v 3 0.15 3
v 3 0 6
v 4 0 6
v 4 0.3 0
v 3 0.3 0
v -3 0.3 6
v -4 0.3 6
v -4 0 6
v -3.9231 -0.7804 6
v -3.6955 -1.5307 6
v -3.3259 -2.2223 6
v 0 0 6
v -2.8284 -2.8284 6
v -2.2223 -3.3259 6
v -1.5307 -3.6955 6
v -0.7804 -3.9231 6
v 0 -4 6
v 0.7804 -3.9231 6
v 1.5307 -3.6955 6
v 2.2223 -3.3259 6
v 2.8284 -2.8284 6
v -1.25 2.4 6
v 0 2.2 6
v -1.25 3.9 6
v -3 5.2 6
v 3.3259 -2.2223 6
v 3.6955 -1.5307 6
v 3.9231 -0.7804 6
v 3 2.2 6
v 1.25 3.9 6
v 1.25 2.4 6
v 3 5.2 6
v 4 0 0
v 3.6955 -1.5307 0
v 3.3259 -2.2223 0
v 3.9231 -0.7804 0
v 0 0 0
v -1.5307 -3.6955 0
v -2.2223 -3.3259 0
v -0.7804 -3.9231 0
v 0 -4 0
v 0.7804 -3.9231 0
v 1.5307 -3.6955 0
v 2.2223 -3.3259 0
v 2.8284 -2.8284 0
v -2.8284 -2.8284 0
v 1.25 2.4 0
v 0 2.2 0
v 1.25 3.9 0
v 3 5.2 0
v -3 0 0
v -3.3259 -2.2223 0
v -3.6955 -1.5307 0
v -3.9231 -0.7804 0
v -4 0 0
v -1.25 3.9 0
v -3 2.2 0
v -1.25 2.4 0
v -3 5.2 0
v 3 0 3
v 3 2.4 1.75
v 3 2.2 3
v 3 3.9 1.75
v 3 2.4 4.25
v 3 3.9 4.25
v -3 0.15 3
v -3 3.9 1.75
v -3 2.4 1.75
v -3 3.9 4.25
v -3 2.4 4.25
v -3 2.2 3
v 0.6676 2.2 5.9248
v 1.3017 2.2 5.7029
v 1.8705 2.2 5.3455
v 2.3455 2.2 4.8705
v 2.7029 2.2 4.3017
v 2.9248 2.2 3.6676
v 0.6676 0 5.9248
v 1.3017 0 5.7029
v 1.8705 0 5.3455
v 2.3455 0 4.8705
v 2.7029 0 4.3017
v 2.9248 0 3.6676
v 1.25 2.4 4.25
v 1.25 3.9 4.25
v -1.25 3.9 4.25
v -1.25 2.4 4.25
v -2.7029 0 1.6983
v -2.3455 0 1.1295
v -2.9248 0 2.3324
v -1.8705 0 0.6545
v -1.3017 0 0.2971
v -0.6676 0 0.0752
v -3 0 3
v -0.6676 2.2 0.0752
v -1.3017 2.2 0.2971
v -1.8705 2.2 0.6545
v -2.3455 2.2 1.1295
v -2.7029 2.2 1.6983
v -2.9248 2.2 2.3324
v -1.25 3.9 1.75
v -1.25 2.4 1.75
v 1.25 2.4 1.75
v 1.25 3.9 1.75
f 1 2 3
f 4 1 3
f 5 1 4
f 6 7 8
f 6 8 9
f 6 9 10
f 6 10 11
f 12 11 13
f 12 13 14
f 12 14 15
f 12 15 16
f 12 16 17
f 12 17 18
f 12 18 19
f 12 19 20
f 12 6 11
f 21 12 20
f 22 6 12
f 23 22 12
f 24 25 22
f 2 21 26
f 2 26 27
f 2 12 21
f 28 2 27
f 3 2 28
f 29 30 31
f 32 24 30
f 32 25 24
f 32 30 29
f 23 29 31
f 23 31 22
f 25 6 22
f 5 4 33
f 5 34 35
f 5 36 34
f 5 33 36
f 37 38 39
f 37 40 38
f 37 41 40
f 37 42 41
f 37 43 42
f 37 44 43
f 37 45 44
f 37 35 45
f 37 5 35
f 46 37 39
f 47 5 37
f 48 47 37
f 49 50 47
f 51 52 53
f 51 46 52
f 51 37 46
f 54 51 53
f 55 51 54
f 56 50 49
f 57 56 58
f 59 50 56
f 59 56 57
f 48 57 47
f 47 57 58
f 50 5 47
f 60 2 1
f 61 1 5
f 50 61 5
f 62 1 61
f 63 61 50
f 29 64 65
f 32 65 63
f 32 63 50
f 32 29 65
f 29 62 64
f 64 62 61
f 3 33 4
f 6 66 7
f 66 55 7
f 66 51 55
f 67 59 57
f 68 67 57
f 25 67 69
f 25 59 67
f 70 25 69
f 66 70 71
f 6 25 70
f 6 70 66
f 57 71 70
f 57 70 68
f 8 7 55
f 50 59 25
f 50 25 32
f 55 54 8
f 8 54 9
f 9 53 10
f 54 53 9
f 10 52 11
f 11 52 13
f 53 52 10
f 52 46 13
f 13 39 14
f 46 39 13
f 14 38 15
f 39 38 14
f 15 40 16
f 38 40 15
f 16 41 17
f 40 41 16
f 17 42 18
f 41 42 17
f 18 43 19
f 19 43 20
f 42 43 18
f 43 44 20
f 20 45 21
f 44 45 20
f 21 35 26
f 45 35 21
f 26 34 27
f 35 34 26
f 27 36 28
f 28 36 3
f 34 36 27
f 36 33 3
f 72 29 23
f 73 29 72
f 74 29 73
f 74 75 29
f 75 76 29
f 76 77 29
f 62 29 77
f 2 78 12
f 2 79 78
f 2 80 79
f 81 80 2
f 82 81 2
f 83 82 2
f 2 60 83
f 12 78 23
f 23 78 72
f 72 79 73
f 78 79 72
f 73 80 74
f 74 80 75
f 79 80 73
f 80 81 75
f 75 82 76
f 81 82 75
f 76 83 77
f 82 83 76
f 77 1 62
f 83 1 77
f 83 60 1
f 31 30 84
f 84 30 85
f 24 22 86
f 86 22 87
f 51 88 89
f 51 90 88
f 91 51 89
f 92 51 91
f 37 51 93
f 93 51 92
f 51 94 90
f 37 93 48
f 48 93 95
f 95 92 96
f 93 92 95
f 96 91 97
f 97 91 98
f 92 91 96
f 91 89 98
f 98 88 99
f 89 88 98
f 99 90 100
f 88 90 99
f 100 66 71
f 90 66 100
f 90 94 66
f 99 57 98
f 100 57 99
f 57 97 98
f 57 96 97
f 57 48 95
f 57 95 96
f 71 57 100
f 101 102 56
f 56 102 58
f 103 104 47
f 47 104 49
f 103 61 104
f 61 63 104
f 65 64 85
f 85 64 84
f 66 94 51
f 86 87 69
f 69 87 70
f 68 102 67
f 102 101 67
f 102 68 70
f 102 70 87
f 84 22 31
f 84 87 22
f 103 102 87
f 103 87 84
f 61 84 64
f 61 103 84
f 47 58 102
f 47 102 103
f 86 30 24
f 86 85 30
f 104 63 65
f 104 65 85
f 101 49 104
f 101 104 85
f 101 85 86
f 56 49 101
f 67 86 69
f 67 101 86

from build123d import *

# Parameters (mm, degrees)
PAD_DEPTH       = 6
PAD001_DEPTH    = 2.2
PAD002_DEPTH    = 1
PAD003_DEPTH    = 1
SKETCH004_W     = 6
SKETCH004_H     = 6
PAD004_DEPTH    = 3
SKETCH005_W     = 2.5
SKETCH005_H     = 1.5
POCKET_DEPTH    = 6.001
SKETCH006_W     = 1.5
SKETCH006_H     = 2.5
POCKET001_DEPTH = 7.001


with BuildPart() as part:
    # Sketch → Pad (new body)
    with BuildSketch(Plane.XY):
        with BuildLine():
            Line((-4, 0), (4, 0))
            ThreePointArc((-4, 0), (0, -4), (4, 0))
        make_face()
    extrude(amount=PAD_DEPTH)

    # Sketch001 (on Face1 of Pad) → Pad001 (join)
    with BuildSketch(Plane(origin=(0, 0, 0), x_dir=(-1, 0, 0), z_dir=(0, 1, 0))):
        with BuildLine():
            Line((-3, 3), (-3, 0))
            Line((-3, 0), (0, 0))
            ThreePointArc((0, 0), (2.12132, 0.87868), (3, 3))
            Line((3, 3), (3, 6))
            Line((3, 6), (0, 6))
            ThreePointArc((0, 6), (-2.12132, 5.12132), (-3, 3))
        make_face()
    extrude(amount=PAD001_DEPTH)

    # Sketch002 (on Face7 of Pad001) → Pad002 (join)
    with BuildSketch(Plane.YZ.offset(3)):
        Polygon((0, 0), (0, 6), (0.3, 0), align=None)
    extrude(amount=PAD002_DEPTH)

    # Sketch003 (on Face3 of Pad002) → Pad003 (join)
    with BuildSketch(Plane(origin=(-3, 0, 0), x_dir=(0, -1, 0), z_dir=(-1, 0, 0))):
        Polygon((0, 0), (0, 6), (-0.3, 6), align=None)
    extrude(amount=PAD003_DEPTH)

    # Sketch004 (on Face6 of Pad003) → Pad004 (join)
    with BuildSketch(Plane(origin=(0, 2.2, 0), x_dir=(-1, 0, 0), z_dir=(0, 1, 0))):
        with Locations((0, 3)):
            Rectangle(SKETCH004_W, SKETCH004_H)
    extrude(amount=PAD004_DEPTH)

    # Sketch005 (on Face18 of Pad004) → Pocket (cut, through all)
    with BuildSketch(Plane.XY.offset(6)):
        with Locations((0, 3.15)):
            Rectangle(SKETCH005_W, SKETCH005_H)
    extrude(amount=-POCKET_DEPTH, mode=Mode.SUBTRACT)

    # Sketch006 (on Face5 of Pocket) → Pocket001 (cut, through all)
    with BuildSketch(Plane.YZ.offset(3)):
        with Locations((3.15, 3)):
            Rectangle(SKETCH006_W, SKETCH006_H)
    extrude(amount=-POCKET001_DEPTH, mode=Mode.SUBTRACT)


solid = part.part
